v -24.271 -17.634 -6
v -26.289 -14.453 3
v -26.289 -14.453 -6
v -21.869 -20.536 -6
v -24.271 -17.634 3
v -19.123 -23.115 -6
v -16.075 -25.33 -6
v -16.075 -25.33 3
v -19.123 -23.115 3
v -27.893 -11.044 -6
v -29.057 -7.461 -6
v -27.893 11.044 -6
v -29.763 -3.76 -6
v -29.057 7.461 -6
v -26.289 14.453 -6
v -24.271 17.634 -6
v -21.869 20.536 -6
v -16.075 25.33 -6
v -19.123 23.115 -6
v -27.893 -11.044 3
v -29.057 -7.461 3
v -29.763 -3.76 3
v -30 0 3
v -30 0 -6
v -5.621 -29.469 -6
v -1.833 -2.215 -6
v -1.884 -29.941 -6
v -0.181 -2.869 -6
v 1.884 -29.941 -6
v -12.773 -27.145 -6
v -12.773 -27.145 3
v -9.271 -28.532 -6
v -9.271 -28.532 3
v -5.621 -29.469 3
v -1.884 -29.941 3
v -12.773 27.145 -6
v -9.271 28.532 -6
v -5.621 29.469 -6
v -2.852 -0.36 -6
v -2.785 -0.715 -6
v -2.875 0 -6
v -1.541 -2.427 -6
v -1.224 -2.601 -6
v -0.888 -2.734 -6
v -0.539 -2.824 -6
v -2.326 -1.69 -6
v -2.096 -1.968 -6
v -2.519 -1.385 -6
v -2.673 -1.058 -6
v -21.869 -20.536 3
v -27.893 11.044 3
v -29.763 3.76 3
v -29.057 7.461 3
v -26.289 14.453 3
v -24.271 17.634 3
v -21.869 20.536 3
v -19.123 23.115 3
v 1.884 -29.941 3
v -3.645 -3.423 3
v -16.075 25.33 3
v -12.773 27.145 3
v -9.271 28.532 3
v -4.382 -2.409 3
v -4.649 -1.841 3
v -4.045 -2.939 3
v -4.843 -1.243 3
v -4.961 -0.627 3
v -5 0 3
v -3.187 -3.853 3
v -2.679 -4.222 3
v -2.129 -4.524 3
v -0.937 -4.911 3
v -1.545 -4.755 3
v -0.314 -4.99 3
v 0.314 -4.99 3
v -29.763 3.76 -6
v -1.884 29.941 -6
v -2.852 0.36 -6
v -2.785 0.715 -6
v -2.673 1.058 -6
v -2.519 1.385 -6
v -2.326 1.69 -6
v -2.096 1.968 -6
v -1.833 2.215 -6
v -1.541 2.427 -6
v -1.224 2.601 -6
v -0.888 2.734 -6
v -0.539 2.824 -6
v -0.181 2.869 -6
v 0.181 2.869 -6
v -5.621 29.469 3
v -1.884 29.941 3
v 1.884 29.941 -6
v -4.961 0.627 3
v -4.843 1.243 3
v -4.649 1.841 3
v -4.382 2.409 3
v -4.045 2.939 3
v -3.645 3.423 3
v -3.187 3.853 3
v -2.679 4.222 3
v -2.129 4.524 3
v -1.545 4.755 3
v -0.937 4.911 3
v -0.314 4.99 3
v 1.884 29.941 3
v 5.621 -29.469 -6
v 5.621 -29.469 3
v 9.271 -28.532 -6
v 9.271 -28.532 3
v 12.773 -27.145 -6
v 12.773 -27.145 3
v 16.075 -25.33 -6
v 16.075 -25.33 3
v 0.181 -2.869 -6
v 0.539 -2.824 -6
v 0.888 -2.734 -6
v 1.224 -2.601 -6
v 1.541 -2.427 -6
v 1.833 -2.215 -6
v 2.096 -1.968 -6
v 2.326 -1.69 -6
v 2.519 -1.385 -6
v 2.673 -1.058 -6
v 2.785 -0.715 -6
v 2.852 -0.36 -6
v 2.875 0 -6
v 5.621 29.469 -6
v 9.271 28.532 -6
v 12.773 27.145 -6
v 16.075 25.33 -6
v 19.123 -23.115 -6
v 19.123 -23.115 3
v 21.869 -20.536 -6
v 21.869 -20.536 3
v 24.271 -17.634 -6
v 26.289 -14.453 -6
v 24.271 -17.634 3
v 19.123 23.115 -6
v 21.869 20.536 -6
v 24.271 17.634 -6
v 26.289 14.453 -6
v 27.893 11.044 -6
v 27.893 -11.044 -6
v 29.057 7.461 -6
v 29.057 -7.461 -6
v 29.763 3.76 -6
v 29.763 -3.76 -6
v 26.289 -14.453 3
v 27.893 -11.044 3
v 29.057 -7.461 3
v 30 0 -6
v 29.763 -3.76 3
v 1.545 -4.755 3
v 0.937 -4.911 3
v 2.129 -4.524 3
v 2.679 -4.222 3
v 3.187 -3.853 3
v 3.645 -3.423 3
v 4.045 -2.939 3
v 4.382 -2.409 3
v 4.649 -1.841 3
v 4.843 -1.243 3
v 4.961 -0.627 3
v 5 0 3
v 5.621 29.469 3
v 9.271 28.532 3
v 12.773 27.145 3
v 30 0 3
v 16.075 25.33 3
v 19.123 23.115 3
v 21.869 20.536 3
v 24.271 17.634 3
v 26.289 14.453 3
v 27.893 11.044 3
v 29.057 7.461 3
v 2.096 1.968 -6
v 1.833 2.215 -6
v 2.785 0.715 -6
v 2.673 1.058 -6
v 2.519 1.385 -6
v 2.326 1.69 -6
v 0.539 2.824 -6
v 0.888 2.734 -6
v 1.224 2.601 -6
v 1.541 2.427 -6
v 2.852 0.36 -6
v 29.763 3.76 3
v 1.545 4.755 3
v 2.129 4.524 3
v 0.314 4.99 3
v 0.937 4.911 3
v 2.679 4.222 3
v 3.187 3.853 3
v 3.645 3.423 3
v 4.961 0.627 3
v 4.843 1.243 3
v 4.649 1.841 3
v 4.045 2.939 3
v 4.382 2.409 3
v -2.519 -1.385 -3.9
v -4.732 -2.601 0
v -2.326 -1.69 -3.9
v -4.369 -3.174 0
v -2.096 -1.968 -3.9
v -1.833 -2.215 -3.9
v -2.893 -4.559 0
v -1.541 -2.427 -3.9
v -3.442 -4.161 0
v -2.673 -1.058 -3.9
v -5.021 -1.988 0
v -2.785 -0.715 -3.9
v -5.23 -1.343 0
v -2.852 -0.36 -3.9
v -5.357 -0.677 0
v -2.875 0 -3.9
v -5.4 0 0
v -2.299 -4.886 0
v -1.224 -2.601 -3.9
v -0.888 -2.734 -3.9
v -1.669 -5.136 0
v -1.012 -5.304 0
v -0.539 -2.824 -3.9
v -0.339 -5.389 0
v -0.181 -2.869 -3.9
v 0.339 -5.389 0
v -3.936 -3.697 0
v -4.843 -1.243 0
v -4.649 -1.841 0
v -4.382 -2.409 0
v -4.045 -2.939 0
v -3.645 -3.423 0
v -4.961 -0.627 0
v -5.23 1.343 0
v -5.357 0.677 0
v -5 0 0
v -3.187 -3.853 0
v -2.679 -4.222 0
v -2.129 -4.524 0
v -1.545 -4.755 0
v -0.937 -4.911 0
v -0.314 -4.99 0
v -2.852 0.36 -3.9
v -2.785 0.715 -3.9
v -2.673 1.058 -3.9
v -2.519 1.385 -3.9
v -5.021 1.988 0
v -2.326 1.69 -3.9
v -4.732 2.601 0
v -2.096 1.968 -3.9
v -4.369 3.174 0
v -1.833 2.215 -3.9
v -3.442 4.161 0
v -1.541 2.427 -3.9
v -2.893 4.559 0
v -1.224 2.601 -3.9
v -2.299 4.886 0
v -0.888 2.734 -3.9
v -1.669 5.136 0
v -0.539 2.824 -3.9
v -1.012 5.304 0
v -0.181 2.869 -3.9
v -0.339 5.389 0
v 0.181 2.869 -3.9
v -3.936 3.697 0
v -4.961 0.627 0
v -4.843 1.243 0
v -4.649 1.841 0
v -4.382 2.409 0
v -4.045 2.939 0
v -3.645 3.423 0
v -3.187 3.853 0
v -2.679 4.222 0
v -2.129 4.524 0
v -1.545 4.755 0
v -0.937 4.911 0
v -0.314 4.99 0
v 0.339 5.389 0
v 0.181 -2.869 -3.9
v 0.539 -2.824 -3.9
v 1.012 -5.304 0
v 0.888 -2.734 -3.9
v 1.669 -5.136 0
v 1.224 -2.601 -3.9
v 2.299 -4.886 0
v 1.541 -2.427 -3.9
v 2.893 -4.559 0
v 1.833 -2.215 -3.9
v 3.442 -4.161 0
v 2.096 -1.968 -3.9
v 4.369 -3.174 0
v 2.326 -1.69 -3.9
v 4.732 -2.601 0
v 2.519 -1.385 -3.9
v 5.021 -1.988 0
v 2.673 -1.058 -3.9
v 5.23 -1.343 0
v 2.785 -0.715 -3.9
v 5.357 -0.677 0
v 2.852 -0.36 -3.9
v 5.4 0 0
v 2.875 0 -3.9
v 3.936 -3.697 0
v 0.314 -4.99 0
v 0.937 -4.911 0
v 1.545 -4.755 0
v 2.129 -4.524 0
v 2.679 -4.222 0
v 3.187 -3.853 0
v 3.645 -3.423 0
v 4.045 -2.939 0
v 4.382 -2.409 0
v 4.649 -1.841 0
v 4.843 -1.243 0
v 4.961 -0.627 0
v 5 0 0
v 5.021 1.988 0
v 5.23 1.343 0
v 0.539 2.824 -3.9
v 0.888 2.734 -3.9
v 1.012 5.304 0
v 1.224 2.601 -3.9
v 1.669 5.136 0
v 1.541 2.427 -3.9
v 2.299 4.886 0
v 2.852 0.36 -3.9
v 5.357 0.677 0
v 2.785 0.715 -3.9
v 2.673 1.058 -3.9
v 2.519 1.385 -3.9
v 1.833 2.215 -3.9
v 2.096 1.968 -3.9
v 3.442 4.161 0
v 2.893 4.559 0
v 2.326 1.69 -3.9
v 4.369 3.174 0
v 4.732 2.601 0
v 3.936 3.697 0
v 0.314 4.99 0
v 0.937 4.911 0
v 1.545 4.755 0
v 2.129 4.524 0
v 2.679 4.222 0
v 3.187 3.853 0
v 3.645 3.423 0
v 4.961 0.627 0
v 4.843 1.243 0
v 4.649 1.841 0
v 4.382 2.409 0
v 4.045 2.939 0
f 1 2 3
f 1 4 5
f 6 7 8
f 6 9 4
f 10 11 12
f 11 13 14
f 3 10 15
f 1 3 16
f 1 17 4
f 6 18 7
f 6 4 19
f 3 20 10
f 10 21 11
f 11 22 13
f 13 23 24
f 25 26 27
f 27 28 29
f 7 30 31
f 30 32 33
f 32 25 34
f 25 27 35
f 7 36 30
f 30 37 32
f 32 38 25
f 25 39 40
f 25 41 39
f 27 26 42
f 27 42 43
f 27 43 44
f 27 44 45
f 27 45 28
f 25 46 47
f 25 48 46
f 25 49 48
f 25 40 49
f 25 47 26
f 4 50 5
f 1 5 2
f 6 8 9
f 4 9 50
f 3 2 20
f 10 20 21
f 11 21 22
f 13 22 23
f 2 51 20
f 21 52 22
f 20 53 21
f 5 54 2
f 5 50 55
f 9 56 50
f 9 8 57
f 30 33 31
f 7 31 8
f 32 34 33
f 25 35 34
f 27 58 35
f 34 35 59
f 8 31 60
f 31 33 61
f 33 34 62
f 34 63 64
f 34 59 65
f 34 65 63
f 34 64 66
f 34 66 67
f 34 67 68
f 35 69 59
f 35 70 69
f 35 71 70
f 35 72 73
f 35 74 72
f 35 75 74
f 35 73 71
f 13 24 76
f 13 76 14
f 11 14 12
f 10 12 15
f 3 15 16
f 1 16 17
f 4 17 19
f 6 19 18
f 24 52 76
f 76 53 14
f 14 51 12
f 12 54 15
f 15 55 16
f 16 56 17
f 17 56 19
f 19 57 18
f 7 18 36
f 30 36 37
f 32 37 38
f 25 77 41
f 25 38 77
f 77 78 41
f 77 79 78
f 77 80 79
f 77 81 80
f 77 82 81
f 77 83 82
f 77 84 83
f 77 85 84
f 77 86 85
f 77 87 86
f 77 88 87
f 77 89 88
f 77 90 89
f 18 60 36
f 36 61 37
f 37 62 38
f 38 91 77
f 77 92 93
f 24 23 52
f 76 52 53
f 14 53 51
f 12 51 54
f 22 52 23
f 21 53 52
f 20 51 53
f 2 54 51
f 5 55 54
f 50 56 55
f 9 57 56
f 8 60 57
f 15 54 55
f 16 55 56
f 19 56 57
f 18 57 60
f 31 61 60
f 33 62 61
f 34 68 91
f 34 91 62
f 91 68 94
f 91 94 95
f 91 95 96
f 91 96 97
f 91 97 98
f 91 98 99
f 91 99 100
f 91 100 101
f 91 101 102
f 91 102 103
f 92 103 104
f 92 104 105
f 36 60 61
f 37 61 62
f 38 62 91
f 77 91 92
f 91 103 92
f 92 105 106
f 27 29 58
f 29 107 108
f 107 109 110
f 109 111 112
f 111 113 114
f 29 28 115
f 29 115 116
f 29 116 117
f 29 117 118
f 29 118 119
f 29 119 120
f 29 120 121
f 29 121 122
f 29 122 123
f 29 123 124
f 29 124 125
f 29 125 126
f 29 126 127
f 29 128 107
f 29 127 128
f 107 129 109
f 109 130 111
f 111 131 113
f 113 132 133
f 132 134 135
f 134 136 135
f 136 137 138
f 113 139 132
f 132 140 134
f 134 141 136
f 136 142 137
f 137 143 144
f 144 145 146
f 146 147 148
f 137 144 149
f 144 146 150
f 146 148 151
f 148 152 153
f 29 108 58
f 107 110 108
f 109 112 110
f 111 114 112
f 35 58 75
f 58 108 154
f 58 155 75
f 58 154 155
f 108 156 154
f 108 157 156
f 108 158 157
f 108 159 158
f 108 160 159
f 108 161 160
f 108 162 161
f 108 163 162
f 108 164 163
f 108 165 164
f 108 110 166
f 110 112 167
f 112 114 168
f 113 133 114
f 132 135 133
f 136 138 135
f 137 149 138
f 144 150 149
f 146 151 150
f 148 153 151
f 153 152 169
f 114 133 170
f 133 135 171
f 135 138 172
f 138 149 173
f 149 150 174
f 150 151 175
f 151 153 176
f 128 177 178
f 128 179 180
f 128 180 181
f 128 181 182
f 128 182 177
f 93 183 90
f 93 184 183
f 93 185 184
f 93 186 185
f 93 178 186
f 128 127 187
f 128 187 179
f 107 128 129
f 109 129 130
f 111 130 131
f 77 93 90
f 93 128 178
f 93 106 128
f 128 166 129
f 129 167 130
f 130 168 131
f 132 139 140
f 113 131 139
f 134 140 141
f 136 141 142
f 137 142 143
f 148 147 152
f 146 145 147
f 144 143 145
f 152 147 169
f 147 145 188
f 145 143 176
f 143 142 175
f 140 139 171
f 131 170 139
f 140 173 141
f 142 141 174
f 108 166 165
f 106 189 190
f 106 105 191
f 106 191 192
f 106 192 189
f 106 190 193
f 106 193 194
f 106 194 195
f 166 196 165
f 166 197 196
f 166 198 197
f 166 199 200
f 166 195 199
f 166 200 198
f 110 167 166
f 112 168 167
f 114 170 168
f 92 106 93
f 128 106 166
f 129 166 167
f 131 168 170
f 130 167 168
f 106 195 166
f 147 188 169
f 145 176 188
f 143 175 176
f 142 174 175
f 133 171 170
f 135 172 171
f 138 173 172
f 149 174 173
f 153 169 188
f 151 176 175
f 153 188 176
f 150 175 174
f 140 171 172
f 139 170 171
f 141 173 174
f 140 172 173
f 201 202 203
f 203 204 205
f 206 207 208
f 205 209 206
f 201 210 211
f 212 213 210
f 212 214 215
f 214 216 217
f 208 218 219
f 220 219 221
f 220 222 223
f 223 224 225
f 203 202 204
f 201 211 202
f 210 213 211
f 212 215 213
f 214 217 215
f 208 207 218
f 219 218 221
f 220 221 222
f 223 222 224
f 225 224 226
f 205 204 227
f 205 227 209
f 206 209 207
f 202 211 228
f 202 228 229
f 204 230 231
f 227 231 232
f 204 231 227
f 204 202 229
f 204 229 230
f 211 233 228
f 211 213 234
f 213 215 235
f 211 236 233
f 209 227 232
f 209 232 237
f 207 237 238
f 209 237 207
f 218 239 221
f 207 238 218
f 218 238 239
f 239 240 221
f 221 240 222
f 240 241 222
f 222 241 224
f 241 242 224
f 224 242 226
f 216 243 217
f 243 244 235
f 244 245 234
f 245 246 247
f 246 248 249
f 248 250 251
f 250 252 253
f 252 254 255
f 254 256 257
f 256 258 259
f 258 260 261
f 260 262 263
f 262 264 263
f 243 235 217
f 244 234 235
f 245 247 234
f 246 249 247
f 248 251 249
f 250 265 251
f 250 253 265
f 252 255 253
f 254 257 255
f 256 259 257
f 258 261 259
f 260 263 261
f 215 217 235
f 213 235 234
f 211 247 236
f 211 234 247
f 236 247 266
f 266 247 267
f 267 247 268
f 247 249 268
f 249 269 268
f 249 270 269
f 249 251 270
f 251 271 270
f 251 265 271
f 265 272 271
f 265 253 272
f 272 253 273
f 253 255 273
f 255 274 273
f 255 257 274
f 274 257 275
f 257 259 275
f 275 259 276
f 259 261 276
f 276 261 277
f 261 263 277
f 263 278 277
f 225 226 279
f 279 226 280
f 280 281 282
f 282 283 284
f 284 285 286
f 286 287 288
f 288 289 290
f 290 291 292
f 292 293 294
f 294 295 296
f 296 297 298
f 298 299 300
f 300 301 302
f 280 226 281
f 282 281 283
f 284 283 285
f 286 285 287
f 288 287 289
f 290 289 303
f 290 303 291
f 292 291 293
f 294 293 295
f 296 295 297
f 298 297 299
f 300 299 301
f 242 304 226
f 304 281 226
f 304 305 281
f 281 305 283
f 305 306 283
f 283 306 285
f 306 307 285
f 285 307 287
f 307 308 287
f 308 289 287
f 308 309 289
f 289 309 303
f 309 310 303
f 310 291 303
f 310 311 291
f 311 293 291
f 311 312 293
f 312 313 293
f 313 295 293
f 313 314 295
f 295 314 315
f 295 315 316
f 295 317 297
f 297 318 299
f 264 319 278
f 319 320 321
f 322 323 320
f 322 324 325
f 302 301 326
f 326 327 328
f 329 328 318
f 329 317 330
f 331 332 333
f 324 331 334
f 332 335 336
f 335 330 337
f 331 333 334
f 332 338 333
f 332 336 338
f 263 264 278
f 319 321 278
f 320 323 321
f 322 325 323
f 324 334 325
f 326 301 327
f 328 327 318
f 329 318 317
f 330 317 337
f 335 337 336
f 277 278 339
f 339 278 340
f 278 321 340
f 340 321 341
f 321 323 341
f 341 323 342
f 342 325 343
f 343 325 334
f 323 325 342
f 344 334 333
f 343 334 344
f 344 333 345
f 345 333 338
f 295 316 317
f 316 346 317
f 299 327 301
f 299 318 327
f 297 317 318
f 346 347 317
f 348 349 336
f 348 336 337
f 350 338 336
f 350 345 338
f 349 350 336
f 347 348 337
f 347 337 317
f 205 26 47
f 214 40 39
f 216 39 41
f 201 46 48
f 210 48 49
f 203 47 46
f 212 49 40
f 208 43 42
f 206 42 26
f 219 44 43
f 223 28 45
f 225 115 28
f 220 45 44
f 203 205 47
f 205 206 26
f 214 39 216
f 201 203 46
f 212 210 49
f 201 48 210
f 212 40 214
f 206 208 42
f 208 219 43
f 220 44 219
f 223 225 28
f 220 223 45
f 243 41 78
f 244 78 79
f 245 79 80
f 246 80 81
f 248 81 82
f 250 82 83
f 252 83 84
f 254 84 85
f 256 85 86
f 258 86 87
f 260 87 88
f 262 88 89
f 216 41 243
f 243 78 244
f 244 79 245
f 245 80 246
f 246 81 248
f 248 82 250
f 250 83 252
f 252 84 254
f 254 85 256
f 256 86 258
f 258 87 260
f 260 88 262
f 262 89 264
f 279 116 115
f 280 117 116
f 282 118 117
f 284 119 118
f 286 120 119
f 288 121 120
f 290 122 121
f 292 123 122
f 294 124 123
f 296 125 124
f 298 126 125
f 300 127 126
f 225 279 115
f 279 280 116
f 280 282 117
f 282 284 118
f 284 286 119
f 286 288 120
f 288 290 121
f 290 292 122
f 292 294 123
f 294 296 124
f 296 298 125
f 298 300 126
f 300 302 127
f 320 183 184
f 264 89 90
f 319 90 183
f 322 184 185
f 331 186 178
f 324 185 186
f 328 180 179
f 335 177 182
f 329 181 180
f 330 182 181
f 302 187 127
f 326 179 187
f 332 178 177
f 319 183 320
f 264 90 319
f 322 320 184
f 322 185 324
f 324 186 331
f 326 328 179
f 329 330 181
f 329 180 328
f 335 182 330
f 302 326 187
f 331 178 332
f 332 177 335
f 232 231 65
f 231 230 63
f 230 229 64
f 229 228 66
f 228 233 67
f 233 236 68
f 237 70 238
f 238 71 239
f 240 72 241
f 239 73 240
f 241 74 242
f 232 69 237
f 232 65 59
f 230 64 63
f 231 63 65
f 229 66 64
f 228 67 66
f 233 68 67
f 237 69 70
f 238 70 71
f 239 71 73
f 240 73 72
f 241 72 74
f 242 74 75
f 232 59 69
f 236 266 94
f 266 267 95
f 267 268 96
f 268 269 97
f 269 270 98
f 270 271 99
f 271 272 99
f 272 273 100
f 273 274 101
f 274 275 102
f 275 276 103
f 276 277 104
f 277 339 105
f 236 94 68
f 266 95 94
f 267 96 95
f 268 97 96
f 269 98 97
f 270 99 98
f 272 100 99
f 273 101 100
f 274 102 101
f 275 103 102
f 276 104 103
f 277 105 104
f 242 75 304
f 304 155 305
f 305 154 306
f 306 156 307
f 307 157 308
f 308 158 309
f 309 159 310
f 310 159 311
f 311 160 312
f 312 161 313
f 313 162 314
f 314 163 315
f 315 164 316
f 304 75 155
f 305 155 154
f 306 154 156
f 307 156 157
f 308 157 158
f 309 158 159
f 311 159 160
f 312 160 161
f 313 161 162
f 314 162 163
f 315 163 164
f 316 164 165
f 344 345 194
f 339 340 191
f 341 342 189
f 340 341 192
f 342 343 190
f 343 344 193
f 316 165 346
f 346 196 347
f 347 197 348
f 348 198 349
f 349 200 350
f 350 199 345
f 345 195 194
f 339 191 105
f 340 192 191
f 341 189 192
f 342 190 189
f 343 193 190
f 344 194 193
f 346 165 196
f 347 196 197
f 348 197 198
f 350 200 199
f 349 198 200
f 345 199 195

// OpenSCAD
$fn = 50;

difference() {
	union() {
		translate(v = [0, 0, -6.0]) {
			cylinder(h = 9, r = 30.0);
		}
		#translate(v = [0, 0, -9.0]) {
			cylinder(h = 9, r = 2.875);
		}
	}
	union() {
		translate(v = [0, 0, 0]) {
			rotate(a = [0, 0, 0]) {
				difference() {
					union() {
						translate(v = [0, 0, -9.0]) {
							cylinder(h = 9, r = 2.6);
						}
						translate(v = [0, 0, -3.9]) {
							cylinder(h = 3.9, r1 = 2.875, r2 = 5.4);
						}
						translate(v = [0, 0, -9.0]) {
							cylinder(h = 9, r = 2.875);
						}
						translate(v = [0, 0, -9.0]) {
							cylinder(h = 9, r = 2.6);
						}
					}
					union();
				}
			}
		}
		#cylinder(h = 3, r = 5.0);
	}
}
